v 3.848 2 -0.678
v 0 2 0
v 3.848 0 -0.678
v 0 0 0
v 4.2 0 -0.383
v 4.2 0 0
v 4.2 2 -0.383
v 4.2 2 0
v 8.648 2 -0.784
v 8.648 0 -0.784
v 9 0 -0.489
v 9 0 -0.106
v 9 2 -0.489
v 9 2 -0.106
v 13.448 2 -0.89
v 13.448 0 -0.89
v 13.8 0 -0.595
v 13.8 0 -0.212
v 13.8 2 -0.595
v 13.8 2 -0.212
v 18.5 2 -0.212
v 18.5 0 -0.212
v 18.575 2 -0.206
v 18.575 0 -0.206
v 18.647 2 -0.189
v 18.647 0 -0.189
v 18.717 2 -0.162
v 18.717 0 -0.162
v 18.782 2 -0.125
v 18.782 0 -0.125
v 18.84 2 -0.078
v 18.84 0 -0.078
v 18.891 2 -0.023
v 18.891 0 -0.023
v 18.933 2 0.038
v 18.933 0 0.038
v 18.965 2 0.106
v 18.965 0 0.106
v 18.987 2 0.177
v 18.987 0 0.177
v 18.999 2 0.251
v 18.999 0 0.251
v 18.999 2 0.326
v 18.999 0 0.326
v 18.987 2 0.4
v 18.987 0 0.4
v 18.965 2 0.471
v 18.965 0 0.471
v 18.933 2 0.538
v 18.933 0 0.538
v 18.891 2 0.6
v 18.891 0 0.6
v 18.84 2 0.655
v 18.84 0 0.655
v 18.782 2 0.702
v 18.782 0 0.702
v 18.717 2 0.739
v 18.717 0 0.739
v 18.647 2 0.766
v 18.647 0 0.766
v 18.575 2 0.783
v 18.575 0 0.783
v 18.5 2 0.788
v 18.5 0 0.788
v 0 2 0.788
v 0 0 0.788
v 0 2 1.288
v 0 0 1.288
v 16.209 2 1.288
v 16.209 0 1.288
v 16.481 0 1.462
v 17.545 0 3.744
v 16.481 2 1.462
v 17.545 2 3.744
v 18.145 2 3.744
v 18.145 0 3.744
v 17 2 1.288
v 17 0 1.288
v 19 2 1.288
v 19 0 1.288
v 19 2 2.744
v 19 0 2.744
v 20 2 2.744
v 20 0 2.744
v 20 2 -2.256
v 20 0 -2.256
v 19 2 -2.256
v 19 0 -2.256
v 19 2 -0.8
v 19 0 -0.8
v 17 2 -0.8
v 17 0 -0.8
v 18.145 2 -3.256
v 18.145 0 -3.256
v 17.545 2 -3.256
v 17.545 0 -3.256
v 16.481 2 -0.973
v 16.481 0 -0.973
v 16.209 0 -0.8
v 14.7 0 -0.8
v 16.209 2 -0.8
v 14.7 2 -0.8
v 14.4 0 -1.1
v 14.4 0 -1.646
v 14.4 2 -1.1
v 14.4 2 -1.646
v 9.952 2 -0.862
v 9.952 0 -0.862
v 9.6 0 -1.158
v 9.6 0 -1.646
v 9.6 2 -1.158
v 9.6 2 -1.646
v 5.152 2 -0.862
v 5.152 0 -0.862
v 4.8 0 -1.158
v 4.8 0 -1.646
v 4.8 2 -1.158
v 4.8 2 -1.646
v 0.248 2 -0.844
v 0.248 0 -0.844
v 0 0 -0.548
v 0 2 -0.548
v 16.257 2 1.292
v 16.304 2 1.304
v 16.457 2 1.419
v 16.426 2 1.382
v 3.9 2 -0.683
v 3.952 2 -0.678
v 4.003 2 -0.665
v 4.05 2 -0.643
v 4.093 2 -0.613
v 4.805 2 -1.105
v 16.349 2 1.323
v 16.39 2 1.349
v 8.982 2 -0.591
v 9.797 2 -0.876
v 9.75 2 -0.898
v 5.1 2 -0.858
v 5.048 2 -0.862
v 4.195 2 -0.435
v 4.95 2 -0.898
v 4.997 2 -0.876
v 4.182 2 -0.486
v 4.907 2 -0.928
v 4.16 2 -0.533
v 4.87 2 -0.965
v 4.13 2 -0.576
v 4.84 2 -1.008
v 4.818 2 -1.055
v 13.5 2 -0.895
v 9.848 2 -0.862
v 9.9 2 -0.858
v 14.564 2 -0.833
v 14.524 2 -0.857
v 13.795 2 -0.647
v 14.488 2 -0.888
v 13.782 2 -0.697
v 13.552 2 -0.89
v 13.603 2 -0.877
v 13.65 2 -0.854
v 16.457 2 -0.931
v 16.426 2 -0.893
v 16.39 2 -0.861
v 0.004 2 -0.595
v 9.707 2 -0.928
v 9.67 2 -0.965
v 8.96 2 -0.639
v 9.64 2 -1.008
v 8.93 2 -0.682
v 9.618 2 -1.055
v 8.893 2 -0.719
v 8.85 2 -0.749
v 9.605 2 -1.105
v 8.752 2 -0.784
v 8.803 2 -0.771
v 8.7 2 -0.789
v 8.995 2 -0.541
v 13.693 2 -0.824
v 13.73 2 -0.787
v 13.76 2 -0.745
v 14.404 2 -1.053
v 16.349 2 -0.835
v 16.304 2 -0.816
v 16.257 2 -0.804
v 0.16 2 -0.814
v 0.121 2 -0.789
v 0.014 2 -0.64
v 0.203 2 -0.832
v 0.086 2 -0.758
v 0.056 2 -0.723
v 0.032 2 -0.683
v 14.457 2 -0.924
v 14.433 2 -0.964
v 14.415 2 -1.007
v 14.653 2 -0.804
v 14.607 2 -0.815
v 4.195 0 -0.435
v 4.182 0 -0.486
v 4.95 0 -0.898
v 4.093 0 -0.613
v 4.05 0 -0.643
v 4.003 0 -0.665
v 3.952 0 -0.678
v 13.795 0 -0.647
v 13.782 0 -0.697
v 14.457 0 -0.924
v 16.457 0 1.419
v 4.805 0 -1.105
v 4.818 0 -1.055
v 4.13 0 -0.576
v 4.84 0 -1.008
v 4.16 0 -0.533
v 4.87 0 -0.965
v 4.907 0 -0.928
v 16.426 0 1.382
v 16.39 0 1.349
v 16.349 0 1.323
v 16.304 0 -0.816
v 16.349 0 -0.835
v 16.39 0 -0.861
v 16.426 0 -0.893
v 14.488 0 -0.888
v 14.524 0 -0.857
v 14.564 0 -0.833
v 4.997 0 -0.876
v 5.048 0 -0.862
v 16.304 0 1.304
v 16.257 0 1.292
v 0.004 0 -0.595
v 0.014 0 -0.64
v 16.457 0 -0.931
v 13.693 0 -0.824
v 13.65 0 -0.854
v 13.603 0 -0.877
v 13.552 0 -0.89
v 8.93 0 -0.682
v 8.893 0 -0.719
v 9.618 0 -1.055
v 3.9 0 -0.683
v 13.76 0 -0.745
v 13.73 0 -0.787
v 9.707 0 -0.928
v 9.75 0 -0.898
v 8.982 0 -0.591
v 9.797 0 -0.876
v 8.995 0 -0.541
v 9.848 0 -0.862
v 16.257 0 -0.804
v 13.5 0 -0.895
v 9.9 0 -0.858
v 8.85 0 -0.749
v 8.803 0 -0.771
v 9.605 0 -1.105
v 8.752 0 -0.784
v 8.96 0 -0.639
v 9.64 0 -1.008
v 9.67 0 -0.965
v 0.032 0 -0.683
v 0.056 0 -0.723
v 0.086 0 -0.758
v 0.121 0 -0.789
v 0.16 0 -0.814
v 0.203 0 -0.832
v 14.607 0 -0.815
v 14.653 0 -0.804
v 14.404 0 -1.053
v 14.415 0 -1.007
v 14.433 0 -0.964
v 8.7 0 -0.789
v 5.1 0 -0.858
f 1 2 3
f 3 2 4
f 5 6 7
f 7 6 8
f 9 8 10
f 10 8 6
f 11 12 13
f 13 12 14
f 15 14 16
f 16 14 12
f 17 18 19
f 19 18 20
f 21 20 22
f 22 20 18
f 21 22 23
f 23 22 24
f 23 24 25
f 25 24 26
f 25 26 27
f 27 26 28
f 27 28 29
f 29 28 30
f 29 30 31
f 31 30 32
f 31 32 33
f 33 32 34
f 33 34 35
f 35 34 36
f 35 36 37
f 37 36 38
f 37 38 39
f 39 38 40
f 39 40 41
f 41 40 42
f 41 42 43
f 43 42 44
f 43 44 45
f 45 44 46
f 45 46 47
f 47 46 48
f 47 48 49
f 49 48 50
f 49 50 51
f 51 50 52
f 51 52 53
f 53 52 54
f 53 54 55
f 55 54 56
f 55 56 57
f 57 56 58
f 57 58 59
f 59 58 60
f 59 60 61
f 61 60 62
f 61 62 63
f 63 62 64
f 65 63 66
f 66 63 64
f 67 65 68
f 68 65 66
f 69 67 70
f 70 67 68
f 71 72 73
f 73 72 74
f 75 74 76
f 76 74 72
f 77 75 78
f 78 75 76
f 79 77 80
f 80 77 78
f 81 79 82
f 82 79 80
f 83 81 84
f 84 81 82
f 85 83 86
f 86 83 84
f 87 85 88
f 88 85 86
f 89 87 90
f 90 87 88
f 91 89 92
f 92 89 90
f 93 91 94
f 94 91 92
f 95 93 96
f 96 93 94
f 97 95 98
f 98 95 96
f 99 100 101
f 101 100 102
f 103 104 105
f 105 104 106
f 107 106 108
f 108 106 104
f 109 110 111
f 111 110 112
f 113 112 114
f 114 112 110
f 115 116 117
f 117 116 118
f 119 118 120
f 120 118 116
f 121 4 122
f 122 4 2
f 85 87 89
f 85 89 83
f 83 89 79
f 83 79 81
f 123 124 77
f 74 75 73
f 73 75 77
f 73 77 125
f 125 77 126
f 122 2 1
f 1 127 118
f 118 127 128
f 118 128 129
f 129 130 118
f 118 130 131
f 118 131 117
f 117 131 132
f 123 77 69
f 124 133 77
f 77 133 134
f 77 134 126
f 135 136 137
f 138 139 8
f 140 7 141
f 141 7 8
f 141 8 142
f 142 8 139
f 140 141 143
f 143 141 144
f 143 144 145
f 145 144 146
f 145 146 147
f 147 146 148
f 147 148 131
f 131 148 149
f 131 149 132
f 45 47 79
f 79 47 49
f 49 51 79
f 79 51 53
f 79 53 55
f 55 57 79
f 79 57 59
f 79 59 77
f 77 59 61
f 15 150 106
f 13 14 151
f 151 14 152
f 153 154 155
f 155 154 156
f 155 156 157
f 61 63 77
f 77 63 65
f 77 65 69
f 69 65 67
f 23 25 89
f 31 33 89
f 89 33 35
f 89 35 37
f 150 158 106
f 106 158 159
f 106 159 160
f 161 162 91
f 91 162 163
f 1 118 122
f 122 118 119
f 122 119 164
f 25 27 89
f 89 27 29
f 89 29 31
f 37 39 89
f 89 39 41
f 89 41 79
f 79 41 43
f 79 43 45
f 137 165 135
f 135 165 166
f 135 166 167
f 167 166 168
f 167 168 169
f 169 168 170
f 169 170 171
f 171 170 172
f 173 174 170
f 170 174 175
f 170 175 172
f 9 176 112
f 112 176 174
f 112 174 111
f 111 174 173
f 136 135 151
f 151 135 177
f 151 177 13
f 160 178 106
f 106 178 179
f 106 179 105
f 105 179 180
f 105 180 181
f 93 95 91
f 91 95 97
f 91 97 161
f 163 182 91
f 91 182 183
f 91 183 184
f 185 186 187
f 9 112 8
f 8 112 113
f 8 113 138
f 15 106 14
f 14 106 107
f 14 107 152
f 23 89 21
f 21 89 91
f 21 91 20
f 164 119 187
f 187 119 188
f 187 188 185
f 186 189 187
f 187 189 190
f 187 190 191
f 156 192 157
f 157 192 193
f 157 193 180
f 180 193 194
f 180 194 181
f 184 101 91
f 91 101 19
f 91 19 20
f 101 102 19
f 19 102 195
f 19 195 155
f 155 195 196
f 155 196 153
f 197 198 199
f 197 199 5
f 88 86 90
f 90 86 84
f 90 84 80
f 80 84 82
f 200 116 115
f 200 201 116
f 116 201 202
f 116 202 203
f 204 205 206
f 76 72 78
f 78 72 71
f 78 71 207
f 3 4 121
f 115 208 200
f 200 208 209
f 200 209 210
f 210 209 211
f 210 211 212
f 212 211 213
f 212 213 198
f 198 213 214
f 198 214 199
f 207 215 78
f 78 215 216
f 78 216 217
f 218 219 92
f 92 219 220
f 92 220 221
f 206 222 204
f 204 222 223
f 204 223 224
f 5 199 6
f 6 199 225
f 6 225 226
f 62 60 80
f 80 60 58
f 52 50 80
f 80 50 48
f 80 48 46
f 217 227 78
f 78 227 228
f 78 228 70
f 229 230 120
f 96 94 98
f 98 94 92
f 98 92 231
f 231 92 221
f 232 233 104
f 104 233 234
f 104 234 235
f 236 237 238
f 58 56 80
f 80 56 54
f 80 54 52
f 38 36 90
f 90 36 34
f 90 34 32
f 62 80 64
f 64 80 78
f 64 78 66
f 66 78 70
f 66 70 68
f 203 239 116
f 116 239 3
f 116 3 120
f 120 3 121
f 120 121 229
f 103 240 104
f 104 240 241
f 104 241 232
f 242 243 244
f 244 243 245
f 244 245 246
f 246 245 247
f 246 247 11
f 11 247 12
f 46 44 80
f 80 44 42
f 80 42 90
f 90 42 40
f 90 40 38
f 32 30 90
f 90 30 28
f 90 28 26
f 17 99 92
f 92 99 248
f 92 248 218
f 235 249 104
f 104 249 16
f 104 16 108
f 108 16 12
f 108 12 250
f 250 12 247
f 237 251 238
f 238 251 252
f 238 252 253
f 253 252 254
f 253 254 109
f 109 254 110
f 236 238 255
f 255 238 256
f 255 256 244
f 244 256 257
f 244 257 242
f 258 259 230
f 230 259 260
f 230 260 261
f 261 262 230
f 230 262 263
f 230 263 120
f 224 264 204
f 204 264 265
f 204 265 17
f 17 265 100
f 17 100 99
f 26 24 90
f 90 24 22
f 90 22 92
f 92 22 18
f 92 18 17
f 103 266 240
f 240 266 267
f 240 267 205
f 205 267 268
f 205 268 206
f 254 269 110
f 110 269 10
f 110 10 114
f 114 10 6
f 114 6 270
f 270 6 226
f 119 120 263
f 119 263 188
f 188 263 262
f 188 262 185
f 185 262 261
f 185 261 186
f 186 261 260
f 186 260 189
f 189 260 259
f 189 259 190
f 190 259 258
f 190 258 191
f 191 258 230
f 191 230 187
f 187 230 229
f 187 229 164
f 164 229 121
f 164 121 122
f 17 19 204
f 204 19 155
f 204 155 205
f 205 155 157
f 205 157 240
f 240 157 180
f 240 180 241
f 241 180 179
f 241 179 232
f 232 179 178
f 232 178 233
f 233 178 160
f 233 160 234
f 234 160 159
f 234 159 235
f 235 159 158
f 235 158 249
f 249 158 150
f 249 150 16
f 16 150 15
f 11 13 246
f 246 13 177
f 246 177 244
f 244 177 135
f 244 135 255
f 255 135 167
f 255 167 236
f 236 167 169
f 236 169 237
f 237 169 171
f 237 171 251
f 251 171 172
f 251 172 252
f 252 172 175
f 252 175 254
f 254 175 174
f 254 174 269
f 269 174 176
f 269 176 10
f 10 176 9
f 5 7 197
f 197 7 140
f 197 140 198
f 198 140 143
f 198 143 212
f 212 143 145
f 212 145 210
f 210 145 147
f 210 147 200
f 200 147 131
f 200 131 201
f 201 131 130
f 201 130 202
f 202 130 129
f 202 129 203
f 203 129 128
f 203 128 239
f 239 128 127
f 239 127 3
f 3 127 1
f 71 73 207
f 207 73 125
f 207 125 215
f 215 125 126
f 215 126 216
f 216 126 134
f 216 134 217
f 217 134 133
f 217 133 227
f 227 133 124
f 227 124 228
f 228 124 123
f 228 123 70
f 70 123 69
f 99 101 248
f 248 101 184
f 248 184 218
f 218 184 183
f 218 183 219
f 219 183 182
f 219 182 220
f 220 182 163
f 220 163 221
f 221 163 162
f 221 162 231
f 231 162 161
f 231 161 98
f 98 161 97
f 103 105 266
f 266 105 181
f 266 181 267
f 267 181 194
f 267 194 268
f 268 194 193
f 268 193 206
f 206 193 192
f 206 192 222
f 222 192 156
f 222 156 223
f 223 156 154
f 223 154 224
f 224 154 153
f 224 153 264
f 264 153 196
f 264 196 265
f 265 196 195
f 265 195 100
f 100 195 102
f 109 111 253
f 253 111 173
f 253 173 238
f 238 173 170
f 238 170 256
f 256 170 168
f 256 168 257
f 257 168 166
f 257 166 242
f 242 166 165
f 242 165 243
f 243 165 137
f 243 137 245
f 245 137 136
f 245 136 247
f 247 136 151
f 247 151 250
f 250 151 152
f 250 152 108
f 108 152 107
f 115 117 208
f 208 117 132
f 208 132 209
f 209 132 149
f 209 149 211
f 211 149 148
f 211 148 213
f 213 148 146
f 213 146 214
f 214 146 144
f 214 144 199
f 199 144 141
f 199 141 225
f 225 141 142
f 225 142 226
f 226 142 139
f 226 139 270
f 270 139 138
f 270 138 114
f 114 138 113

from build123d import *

# Parameters (mm, degrees)
BOSS_EXTRUDE1_DEPTH = 2
FILLET1_R           = 0.3


with BuildPart() as part:
    # Sketch1 → Boss-Extrude1 (new body)
    with BuildSketch(Plane(origin=(0, 0, 0), x_dir=(1, 0, 0), z_dir=(0, 1, 0))):
        with BuildLine():
            Line((0, 0), (0, 0.8))
            Line((0, 0.8), (4.8, 1.646369507))
            Line((4.8, 1.646369507), (4.8, 0.8))
            Line((4.8, 0.8), (9.6, 1.646369507))
            Line((9.6, 1.646369507), (9.6, 0.8))
            Line((9.6, 0.8), (14.4, 1.646369507))
            Line((14.4, 1.646369507), (14.4, 0.8))
            Line((14.4, 0.8), (16.4, 0.8))
            Line((16.4, 0.8), (17.54515657, 3.255796188))
            Line((17.54515657, 3.255796188), (18.14515657, 3.255796188))
            Line((18.14515657, 3.255796188), (17, 0.8))
            Line((17, 0.8), (19, 0.8))
            Line((19, 0.8), (19, 2.255796188))
            Line((19, 2.255796188), (20, 2.255796188))
            Line((20, 2.255796188), (20, -2.744203812))
            Line((20, -2.744203812), (19, -2.744203812))
            Line((19, -2.744203812), (19, -1.288407623))
            Line((19, -1.288407623), (17, -1.288407623))
            Line((17, -1.288407623), (18.14515657, -3.744203812))
            Line((18.14515657, -3.744203812), (17.54515657, -3.744203812))
            Line((17.54515657, -3.744203812), (16.4, -1.288407623))
            Line((16.4, -1.288407623), (0, -1.288407623))
            Line((0, -1.288407623), (0, -0.788407623))
            Line((0, -0.788407623), (18.5, -0.788407623))
            ThreePointArc((18.5, -0.788407623), (19, -0.288407623), (18.5, 0.211592377))
            Line((18.5, 0.211592377), (13.8, 0.211592377))
            Line((13.8, 0.211592377), (13.8, 0.952165696))
            Line((13.8, 0.952165696), (9, 0.105796188))
            Line((9, 0.105796188), (9, 0.846369507))
            Line((9, 0.846369507), (4.2, 0))
            Line((4.2, 0), (4.2, 0.740573319))
            Line((4.2, 0.740573319), (0, 0))
        make_face()
    extrude(amount=BOSS_EXTRUDE1_DEPTH)

    # Fillet1
    fillet1_edges = [part.edges().sort_by_distance(p)[0] for p in [
        (0, 1, -0.8),
        (4.8, 1, -0.8),
        (9.6, 1, -0.8),
        (14.4, 1, -0.8),
        (16.4, 1, -0.8),
        (16.4, 1, 1.288407623),
        (13.8, 1, -0.952165696),
        (9, 1, -0.846369507),
        (4.2, 1, -0.740573319),
    ]]
    fillet(fillet1_edges, radius=FILLET1_R)


solid = part.part
